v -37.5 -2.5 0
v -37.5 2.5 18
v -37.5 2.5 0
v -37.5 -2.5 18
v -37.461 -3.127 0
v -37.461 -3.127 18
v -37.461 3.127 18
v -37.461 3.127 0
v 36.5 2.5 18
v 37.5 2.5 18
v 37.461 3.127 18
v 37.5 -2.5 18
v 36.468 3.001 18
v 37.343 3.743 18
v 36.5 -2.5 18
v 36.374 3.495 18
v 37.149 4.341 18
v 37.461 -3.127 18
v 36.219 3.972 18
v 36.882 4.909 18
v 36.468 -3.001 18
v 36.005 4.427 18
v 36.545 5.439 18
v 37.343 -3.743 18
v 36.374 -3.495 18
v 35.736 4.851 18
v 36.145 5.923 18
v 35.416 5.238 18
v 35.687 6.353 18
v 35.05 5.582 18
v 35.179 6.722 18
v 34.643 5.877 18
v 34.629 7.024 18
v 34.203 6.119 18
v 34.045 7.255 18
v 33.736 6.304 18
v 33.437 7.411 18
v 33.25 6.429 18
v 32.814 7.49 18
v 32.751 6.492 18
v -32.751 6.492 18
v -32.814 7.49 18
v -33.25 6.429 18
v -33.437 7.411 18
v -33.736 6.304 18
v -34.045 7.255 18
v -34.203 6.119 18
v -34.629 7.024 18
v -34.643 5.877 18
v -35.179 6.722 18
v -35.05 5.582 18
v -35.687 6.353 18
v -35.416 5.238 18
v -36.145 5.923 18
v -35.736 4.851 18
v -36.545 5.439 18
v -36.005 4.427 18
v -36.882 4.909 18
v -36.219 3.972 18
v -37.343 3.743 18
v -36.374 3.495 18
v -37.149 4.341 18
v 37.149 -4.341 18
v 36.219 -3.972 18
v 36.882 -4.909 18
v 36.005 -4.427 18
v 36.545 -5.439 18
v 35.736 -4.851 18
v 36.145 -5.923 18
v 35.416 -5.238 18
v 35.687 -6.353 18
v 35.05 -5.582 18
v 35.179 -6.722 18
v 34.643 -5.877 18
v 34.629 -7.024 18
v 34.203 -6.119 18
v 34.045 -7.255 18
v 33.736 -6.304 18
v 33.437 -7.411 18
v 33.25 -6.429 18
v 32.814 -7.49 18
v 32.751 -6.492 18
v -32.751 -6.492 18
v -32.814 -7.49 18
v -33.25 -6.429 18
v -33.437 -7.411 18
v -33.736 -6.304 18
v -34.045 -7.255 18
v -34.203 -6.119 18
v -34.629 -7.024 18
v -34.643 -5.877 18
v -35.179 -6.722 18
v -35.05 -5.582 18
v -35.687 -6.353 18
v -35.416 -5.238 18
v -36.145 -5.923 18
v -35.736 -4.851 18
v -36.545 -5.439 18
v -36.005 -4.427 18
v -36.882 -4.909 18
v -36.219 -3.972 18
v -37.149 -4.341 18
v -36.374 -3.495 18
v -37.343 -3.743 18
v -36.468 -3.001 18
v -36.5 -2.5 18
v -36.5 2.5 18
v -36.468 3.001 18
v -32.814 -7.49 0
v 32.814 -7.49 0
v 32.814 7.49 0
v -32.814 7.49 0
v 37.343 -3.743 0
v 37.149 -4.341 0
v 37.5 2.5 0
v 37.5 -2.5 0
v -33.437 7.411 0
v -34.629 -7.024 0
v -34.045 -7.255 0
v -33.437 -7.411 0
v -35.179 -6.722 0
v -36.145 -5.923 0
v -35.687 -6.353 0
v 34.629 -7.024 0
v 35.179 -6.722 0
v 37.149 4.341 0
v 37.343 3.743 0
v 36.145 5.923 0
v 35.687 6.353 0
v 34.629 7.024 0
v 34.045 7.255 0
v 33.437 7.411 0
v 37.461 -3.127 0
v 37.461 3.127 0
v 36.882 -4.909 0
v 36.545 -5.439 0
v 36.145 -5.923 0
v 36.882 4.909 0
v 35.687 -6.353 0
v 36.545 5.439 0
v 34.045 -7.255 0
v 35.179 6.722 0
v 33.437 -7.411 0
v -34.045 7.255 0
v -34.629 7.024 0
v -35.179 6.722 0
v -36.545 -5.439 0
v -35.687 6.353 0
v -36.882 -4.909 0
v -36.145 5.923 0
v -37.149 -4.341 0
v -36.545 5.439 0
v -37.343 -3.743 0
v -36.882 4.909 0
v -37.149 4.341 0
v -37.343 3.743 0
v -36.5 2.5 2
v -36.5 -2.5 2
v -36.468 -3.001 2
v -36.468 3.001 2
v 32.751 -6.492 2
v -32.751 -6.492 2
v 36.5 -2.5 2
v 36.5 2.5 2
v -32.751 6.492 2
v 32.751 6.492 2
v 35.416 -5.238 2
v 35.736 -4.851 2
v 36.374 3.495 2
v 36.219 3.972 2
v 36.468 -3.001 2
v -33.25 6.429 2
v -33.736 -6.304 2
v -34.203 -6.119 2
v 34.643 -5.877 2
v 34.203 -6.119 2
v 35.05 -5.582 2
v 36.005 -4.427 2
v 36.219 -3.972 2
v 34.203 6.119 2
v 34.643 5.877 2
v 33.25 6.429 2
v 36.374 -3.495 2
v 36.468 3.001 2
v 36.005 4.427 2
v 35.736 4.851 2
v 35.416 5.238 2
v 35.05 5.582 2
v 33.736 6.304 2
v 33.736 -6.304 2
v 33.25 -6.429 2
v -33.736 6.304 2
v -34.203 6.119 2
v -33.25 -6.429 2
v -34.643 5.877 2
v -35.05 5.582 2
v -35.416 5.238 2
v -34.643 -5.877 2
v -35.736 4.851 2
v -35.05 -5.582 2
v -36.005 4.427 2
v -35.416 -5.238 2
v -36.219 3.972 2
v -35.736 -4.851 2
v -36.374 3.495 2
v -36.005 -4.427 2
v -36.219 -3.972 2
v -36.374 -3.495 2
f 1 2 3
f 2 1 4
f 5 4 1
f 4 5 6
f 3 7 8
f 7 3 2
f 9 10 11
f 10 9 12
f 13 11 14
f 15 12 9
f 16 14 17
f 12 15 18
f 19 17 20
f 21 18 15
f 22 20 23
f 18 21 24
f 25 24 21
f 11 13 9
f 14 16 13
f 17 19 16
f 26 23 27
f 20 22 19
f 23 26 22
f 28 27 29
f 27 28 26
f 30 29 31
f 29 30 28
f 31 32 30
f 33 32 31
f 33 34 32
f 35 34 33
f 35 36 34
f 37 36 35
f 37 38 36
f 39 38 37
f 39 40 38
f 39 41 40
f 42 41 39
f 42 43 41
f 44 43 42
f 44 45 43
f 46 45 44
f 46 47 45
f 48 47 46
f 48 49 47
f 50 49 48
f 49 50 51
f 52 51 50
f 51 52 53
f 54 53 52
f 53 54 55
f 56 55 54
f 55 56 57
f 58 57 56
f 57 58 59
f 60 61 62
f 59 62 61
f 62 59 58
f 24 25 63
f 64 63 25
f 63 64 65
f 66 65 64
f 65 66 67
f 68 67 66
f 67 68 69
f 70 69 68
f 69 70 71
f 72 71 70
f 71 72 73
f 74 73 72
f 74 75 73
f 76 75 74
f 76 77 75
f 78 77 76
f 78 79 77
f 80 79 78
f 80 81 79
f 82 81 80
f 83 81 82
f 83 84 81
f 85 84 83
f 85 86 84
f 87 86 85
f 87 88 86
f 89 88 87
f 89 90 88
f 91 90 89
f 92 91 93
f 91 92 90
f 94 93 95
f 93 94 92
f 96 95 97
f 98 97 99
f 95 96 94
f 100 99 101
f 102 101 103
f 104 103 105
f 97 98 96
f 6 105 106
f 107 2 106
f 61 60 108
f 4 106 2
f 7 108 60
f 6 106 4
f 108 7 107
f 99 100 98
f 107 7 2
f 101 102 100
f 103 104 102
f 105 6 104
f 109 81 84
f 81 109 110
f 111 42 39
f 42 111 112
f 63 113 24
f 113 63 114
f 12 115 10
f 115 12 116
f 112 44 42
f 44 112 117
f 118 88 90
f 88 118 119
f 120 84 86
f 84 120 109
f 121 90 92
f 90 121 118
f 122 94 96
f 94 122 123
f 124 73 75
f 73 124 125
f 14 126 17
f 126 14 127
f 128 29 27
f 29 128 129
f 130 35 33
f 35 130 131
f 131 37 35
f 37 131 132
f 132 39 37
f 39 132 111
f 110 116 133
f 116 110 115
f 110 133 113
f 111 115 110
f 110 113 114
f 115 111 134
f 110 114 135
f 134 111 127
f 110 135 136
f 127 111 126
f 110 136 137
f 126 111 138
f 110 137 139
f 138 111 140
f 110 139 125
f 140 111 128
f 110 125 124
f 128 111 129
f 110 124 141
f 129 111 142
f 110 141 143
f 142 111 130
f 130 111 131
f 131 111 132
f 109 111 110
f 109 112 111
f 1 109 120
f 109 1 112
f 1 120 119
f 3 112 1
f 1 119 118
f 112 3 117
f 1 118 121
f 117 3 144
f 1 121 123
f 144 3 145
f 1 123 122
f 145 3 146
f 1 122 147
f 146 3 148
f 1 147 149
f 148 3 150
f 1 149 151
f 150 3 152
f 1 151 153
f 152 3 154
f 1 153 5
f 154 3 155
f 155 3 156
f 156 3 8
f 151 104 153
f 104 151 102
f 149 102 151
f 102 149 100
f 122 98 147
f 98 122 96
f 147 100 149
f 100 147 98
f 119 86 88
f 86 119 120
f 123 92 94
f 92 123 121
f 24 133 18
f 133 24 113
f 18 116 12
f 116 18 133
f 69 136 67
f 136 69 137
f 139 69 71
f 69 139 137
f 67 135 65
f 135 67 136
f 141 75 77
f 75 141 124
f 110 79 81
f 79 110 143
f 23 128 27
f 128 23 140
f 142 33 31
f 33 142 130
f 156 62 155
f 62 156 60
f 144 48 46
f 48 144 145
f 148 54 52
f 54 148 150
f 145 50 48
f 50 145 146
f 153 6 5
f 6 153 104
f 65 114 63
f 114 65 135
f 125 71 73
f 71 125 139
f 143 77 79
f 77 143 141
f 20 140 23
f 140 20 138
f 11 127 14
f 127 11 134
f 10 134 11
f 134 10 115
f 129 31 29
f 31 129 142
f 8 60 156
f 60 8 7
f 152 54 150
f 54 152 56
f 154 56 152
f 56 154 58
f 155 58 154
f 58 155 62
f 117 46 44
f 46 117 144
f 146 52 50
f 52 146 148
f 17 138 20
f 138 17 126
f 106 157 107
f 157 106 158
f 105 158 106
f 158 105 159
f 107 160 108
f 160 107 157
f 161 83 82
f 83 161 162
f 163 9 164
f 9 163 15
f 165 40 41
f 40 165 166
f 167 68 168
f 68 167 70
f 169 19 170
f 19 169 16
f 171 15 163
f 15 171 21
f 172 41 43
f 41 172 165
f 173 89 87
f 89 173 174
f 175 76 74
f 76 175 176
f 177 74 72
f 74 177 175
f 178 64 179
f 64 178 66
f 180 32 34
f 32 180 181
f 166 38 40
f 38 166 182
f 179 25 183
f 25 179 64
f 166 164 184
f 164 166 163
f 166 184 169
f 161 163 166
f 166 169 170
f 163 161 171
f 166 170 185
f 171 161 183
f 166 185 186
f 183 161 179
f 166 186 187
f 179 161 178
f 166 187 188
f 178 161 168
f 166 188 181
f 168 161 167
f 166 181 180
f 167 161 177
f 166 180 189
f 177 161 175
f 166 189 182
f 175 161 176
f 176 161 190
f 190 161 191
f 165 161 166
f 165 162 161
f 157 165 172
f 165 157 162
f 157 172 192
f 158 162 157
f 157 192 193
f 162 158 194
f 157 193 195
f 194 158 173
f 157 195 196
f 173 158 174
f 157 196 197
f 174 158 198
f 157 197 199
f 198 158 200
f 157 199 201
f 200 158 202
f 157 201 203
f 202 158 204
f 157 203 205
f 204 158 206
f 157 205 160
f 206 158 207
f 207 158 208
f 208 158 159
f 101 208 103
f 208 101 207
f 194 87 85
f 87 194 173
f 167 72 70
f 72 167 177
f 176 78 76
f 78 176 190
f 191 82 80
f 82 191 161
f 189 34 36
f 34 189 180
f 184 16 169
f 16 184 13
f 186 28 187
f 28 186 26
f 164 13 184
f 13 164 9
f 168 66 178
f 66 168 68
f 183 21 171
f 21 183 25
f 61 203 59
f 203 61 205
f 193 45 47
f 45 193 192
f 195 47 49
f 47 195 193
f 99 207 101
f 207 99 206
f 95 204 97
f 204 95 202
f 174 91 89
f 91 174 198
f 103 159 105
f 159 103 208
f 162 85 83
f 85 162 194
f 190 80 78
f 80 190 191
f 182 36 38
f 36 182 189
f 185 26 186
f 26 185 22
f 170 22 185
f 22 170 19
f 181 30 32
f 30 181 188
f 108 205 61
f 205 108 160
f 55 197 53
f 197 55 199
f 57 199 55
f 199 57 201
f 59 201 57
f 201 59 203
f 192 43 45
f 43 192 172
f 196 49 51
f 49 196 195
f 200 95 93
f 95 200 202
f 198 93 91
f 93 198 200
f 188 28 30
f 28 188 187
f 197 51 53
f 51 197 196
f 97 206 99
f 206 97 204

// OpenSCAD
$fn = 50;


difference() {
	union() {
		hull() {
			translate(v = [-32.5000000000, 2.5000000000, 0]) {
				cylinder(h = 18, r = 5);
			}
			translate(v = [32.5000000000, 2.5000000000, 0]) {
				cylinder(h = 18, r = 5);
			}
			translate(v = [-32.5000000000, -2.5000000000, 0]) {
				cylinder(h = 18, r = 5);
			}
			translate(v = [32.5000000000, -2.5000000000, 0]) {
				cylinder(h = 18, r = 5);
			}
		}
	}
	union() {
		translate(v = [0, 0, 2]) {
			hull() {
				translate(v = [-32.5000000000, 2.5000000000, 0]) {
					cylinder(h = 16, r = 4);
				}
				translate(v = [32.5000000000, 2.5000000000, 0]) {
					cylinder(h = 16, r = 4);
				}
				translate(v = [-32.5000000000, -2.5000000000, 0]) {
					cylinder(h = 16, r = 4);
				}
				translate(v = [32.5000000000, -2.5000000000, 0]) {
					cylinder(h = 16, r = 4);
				}
			}
		}
	}
}
